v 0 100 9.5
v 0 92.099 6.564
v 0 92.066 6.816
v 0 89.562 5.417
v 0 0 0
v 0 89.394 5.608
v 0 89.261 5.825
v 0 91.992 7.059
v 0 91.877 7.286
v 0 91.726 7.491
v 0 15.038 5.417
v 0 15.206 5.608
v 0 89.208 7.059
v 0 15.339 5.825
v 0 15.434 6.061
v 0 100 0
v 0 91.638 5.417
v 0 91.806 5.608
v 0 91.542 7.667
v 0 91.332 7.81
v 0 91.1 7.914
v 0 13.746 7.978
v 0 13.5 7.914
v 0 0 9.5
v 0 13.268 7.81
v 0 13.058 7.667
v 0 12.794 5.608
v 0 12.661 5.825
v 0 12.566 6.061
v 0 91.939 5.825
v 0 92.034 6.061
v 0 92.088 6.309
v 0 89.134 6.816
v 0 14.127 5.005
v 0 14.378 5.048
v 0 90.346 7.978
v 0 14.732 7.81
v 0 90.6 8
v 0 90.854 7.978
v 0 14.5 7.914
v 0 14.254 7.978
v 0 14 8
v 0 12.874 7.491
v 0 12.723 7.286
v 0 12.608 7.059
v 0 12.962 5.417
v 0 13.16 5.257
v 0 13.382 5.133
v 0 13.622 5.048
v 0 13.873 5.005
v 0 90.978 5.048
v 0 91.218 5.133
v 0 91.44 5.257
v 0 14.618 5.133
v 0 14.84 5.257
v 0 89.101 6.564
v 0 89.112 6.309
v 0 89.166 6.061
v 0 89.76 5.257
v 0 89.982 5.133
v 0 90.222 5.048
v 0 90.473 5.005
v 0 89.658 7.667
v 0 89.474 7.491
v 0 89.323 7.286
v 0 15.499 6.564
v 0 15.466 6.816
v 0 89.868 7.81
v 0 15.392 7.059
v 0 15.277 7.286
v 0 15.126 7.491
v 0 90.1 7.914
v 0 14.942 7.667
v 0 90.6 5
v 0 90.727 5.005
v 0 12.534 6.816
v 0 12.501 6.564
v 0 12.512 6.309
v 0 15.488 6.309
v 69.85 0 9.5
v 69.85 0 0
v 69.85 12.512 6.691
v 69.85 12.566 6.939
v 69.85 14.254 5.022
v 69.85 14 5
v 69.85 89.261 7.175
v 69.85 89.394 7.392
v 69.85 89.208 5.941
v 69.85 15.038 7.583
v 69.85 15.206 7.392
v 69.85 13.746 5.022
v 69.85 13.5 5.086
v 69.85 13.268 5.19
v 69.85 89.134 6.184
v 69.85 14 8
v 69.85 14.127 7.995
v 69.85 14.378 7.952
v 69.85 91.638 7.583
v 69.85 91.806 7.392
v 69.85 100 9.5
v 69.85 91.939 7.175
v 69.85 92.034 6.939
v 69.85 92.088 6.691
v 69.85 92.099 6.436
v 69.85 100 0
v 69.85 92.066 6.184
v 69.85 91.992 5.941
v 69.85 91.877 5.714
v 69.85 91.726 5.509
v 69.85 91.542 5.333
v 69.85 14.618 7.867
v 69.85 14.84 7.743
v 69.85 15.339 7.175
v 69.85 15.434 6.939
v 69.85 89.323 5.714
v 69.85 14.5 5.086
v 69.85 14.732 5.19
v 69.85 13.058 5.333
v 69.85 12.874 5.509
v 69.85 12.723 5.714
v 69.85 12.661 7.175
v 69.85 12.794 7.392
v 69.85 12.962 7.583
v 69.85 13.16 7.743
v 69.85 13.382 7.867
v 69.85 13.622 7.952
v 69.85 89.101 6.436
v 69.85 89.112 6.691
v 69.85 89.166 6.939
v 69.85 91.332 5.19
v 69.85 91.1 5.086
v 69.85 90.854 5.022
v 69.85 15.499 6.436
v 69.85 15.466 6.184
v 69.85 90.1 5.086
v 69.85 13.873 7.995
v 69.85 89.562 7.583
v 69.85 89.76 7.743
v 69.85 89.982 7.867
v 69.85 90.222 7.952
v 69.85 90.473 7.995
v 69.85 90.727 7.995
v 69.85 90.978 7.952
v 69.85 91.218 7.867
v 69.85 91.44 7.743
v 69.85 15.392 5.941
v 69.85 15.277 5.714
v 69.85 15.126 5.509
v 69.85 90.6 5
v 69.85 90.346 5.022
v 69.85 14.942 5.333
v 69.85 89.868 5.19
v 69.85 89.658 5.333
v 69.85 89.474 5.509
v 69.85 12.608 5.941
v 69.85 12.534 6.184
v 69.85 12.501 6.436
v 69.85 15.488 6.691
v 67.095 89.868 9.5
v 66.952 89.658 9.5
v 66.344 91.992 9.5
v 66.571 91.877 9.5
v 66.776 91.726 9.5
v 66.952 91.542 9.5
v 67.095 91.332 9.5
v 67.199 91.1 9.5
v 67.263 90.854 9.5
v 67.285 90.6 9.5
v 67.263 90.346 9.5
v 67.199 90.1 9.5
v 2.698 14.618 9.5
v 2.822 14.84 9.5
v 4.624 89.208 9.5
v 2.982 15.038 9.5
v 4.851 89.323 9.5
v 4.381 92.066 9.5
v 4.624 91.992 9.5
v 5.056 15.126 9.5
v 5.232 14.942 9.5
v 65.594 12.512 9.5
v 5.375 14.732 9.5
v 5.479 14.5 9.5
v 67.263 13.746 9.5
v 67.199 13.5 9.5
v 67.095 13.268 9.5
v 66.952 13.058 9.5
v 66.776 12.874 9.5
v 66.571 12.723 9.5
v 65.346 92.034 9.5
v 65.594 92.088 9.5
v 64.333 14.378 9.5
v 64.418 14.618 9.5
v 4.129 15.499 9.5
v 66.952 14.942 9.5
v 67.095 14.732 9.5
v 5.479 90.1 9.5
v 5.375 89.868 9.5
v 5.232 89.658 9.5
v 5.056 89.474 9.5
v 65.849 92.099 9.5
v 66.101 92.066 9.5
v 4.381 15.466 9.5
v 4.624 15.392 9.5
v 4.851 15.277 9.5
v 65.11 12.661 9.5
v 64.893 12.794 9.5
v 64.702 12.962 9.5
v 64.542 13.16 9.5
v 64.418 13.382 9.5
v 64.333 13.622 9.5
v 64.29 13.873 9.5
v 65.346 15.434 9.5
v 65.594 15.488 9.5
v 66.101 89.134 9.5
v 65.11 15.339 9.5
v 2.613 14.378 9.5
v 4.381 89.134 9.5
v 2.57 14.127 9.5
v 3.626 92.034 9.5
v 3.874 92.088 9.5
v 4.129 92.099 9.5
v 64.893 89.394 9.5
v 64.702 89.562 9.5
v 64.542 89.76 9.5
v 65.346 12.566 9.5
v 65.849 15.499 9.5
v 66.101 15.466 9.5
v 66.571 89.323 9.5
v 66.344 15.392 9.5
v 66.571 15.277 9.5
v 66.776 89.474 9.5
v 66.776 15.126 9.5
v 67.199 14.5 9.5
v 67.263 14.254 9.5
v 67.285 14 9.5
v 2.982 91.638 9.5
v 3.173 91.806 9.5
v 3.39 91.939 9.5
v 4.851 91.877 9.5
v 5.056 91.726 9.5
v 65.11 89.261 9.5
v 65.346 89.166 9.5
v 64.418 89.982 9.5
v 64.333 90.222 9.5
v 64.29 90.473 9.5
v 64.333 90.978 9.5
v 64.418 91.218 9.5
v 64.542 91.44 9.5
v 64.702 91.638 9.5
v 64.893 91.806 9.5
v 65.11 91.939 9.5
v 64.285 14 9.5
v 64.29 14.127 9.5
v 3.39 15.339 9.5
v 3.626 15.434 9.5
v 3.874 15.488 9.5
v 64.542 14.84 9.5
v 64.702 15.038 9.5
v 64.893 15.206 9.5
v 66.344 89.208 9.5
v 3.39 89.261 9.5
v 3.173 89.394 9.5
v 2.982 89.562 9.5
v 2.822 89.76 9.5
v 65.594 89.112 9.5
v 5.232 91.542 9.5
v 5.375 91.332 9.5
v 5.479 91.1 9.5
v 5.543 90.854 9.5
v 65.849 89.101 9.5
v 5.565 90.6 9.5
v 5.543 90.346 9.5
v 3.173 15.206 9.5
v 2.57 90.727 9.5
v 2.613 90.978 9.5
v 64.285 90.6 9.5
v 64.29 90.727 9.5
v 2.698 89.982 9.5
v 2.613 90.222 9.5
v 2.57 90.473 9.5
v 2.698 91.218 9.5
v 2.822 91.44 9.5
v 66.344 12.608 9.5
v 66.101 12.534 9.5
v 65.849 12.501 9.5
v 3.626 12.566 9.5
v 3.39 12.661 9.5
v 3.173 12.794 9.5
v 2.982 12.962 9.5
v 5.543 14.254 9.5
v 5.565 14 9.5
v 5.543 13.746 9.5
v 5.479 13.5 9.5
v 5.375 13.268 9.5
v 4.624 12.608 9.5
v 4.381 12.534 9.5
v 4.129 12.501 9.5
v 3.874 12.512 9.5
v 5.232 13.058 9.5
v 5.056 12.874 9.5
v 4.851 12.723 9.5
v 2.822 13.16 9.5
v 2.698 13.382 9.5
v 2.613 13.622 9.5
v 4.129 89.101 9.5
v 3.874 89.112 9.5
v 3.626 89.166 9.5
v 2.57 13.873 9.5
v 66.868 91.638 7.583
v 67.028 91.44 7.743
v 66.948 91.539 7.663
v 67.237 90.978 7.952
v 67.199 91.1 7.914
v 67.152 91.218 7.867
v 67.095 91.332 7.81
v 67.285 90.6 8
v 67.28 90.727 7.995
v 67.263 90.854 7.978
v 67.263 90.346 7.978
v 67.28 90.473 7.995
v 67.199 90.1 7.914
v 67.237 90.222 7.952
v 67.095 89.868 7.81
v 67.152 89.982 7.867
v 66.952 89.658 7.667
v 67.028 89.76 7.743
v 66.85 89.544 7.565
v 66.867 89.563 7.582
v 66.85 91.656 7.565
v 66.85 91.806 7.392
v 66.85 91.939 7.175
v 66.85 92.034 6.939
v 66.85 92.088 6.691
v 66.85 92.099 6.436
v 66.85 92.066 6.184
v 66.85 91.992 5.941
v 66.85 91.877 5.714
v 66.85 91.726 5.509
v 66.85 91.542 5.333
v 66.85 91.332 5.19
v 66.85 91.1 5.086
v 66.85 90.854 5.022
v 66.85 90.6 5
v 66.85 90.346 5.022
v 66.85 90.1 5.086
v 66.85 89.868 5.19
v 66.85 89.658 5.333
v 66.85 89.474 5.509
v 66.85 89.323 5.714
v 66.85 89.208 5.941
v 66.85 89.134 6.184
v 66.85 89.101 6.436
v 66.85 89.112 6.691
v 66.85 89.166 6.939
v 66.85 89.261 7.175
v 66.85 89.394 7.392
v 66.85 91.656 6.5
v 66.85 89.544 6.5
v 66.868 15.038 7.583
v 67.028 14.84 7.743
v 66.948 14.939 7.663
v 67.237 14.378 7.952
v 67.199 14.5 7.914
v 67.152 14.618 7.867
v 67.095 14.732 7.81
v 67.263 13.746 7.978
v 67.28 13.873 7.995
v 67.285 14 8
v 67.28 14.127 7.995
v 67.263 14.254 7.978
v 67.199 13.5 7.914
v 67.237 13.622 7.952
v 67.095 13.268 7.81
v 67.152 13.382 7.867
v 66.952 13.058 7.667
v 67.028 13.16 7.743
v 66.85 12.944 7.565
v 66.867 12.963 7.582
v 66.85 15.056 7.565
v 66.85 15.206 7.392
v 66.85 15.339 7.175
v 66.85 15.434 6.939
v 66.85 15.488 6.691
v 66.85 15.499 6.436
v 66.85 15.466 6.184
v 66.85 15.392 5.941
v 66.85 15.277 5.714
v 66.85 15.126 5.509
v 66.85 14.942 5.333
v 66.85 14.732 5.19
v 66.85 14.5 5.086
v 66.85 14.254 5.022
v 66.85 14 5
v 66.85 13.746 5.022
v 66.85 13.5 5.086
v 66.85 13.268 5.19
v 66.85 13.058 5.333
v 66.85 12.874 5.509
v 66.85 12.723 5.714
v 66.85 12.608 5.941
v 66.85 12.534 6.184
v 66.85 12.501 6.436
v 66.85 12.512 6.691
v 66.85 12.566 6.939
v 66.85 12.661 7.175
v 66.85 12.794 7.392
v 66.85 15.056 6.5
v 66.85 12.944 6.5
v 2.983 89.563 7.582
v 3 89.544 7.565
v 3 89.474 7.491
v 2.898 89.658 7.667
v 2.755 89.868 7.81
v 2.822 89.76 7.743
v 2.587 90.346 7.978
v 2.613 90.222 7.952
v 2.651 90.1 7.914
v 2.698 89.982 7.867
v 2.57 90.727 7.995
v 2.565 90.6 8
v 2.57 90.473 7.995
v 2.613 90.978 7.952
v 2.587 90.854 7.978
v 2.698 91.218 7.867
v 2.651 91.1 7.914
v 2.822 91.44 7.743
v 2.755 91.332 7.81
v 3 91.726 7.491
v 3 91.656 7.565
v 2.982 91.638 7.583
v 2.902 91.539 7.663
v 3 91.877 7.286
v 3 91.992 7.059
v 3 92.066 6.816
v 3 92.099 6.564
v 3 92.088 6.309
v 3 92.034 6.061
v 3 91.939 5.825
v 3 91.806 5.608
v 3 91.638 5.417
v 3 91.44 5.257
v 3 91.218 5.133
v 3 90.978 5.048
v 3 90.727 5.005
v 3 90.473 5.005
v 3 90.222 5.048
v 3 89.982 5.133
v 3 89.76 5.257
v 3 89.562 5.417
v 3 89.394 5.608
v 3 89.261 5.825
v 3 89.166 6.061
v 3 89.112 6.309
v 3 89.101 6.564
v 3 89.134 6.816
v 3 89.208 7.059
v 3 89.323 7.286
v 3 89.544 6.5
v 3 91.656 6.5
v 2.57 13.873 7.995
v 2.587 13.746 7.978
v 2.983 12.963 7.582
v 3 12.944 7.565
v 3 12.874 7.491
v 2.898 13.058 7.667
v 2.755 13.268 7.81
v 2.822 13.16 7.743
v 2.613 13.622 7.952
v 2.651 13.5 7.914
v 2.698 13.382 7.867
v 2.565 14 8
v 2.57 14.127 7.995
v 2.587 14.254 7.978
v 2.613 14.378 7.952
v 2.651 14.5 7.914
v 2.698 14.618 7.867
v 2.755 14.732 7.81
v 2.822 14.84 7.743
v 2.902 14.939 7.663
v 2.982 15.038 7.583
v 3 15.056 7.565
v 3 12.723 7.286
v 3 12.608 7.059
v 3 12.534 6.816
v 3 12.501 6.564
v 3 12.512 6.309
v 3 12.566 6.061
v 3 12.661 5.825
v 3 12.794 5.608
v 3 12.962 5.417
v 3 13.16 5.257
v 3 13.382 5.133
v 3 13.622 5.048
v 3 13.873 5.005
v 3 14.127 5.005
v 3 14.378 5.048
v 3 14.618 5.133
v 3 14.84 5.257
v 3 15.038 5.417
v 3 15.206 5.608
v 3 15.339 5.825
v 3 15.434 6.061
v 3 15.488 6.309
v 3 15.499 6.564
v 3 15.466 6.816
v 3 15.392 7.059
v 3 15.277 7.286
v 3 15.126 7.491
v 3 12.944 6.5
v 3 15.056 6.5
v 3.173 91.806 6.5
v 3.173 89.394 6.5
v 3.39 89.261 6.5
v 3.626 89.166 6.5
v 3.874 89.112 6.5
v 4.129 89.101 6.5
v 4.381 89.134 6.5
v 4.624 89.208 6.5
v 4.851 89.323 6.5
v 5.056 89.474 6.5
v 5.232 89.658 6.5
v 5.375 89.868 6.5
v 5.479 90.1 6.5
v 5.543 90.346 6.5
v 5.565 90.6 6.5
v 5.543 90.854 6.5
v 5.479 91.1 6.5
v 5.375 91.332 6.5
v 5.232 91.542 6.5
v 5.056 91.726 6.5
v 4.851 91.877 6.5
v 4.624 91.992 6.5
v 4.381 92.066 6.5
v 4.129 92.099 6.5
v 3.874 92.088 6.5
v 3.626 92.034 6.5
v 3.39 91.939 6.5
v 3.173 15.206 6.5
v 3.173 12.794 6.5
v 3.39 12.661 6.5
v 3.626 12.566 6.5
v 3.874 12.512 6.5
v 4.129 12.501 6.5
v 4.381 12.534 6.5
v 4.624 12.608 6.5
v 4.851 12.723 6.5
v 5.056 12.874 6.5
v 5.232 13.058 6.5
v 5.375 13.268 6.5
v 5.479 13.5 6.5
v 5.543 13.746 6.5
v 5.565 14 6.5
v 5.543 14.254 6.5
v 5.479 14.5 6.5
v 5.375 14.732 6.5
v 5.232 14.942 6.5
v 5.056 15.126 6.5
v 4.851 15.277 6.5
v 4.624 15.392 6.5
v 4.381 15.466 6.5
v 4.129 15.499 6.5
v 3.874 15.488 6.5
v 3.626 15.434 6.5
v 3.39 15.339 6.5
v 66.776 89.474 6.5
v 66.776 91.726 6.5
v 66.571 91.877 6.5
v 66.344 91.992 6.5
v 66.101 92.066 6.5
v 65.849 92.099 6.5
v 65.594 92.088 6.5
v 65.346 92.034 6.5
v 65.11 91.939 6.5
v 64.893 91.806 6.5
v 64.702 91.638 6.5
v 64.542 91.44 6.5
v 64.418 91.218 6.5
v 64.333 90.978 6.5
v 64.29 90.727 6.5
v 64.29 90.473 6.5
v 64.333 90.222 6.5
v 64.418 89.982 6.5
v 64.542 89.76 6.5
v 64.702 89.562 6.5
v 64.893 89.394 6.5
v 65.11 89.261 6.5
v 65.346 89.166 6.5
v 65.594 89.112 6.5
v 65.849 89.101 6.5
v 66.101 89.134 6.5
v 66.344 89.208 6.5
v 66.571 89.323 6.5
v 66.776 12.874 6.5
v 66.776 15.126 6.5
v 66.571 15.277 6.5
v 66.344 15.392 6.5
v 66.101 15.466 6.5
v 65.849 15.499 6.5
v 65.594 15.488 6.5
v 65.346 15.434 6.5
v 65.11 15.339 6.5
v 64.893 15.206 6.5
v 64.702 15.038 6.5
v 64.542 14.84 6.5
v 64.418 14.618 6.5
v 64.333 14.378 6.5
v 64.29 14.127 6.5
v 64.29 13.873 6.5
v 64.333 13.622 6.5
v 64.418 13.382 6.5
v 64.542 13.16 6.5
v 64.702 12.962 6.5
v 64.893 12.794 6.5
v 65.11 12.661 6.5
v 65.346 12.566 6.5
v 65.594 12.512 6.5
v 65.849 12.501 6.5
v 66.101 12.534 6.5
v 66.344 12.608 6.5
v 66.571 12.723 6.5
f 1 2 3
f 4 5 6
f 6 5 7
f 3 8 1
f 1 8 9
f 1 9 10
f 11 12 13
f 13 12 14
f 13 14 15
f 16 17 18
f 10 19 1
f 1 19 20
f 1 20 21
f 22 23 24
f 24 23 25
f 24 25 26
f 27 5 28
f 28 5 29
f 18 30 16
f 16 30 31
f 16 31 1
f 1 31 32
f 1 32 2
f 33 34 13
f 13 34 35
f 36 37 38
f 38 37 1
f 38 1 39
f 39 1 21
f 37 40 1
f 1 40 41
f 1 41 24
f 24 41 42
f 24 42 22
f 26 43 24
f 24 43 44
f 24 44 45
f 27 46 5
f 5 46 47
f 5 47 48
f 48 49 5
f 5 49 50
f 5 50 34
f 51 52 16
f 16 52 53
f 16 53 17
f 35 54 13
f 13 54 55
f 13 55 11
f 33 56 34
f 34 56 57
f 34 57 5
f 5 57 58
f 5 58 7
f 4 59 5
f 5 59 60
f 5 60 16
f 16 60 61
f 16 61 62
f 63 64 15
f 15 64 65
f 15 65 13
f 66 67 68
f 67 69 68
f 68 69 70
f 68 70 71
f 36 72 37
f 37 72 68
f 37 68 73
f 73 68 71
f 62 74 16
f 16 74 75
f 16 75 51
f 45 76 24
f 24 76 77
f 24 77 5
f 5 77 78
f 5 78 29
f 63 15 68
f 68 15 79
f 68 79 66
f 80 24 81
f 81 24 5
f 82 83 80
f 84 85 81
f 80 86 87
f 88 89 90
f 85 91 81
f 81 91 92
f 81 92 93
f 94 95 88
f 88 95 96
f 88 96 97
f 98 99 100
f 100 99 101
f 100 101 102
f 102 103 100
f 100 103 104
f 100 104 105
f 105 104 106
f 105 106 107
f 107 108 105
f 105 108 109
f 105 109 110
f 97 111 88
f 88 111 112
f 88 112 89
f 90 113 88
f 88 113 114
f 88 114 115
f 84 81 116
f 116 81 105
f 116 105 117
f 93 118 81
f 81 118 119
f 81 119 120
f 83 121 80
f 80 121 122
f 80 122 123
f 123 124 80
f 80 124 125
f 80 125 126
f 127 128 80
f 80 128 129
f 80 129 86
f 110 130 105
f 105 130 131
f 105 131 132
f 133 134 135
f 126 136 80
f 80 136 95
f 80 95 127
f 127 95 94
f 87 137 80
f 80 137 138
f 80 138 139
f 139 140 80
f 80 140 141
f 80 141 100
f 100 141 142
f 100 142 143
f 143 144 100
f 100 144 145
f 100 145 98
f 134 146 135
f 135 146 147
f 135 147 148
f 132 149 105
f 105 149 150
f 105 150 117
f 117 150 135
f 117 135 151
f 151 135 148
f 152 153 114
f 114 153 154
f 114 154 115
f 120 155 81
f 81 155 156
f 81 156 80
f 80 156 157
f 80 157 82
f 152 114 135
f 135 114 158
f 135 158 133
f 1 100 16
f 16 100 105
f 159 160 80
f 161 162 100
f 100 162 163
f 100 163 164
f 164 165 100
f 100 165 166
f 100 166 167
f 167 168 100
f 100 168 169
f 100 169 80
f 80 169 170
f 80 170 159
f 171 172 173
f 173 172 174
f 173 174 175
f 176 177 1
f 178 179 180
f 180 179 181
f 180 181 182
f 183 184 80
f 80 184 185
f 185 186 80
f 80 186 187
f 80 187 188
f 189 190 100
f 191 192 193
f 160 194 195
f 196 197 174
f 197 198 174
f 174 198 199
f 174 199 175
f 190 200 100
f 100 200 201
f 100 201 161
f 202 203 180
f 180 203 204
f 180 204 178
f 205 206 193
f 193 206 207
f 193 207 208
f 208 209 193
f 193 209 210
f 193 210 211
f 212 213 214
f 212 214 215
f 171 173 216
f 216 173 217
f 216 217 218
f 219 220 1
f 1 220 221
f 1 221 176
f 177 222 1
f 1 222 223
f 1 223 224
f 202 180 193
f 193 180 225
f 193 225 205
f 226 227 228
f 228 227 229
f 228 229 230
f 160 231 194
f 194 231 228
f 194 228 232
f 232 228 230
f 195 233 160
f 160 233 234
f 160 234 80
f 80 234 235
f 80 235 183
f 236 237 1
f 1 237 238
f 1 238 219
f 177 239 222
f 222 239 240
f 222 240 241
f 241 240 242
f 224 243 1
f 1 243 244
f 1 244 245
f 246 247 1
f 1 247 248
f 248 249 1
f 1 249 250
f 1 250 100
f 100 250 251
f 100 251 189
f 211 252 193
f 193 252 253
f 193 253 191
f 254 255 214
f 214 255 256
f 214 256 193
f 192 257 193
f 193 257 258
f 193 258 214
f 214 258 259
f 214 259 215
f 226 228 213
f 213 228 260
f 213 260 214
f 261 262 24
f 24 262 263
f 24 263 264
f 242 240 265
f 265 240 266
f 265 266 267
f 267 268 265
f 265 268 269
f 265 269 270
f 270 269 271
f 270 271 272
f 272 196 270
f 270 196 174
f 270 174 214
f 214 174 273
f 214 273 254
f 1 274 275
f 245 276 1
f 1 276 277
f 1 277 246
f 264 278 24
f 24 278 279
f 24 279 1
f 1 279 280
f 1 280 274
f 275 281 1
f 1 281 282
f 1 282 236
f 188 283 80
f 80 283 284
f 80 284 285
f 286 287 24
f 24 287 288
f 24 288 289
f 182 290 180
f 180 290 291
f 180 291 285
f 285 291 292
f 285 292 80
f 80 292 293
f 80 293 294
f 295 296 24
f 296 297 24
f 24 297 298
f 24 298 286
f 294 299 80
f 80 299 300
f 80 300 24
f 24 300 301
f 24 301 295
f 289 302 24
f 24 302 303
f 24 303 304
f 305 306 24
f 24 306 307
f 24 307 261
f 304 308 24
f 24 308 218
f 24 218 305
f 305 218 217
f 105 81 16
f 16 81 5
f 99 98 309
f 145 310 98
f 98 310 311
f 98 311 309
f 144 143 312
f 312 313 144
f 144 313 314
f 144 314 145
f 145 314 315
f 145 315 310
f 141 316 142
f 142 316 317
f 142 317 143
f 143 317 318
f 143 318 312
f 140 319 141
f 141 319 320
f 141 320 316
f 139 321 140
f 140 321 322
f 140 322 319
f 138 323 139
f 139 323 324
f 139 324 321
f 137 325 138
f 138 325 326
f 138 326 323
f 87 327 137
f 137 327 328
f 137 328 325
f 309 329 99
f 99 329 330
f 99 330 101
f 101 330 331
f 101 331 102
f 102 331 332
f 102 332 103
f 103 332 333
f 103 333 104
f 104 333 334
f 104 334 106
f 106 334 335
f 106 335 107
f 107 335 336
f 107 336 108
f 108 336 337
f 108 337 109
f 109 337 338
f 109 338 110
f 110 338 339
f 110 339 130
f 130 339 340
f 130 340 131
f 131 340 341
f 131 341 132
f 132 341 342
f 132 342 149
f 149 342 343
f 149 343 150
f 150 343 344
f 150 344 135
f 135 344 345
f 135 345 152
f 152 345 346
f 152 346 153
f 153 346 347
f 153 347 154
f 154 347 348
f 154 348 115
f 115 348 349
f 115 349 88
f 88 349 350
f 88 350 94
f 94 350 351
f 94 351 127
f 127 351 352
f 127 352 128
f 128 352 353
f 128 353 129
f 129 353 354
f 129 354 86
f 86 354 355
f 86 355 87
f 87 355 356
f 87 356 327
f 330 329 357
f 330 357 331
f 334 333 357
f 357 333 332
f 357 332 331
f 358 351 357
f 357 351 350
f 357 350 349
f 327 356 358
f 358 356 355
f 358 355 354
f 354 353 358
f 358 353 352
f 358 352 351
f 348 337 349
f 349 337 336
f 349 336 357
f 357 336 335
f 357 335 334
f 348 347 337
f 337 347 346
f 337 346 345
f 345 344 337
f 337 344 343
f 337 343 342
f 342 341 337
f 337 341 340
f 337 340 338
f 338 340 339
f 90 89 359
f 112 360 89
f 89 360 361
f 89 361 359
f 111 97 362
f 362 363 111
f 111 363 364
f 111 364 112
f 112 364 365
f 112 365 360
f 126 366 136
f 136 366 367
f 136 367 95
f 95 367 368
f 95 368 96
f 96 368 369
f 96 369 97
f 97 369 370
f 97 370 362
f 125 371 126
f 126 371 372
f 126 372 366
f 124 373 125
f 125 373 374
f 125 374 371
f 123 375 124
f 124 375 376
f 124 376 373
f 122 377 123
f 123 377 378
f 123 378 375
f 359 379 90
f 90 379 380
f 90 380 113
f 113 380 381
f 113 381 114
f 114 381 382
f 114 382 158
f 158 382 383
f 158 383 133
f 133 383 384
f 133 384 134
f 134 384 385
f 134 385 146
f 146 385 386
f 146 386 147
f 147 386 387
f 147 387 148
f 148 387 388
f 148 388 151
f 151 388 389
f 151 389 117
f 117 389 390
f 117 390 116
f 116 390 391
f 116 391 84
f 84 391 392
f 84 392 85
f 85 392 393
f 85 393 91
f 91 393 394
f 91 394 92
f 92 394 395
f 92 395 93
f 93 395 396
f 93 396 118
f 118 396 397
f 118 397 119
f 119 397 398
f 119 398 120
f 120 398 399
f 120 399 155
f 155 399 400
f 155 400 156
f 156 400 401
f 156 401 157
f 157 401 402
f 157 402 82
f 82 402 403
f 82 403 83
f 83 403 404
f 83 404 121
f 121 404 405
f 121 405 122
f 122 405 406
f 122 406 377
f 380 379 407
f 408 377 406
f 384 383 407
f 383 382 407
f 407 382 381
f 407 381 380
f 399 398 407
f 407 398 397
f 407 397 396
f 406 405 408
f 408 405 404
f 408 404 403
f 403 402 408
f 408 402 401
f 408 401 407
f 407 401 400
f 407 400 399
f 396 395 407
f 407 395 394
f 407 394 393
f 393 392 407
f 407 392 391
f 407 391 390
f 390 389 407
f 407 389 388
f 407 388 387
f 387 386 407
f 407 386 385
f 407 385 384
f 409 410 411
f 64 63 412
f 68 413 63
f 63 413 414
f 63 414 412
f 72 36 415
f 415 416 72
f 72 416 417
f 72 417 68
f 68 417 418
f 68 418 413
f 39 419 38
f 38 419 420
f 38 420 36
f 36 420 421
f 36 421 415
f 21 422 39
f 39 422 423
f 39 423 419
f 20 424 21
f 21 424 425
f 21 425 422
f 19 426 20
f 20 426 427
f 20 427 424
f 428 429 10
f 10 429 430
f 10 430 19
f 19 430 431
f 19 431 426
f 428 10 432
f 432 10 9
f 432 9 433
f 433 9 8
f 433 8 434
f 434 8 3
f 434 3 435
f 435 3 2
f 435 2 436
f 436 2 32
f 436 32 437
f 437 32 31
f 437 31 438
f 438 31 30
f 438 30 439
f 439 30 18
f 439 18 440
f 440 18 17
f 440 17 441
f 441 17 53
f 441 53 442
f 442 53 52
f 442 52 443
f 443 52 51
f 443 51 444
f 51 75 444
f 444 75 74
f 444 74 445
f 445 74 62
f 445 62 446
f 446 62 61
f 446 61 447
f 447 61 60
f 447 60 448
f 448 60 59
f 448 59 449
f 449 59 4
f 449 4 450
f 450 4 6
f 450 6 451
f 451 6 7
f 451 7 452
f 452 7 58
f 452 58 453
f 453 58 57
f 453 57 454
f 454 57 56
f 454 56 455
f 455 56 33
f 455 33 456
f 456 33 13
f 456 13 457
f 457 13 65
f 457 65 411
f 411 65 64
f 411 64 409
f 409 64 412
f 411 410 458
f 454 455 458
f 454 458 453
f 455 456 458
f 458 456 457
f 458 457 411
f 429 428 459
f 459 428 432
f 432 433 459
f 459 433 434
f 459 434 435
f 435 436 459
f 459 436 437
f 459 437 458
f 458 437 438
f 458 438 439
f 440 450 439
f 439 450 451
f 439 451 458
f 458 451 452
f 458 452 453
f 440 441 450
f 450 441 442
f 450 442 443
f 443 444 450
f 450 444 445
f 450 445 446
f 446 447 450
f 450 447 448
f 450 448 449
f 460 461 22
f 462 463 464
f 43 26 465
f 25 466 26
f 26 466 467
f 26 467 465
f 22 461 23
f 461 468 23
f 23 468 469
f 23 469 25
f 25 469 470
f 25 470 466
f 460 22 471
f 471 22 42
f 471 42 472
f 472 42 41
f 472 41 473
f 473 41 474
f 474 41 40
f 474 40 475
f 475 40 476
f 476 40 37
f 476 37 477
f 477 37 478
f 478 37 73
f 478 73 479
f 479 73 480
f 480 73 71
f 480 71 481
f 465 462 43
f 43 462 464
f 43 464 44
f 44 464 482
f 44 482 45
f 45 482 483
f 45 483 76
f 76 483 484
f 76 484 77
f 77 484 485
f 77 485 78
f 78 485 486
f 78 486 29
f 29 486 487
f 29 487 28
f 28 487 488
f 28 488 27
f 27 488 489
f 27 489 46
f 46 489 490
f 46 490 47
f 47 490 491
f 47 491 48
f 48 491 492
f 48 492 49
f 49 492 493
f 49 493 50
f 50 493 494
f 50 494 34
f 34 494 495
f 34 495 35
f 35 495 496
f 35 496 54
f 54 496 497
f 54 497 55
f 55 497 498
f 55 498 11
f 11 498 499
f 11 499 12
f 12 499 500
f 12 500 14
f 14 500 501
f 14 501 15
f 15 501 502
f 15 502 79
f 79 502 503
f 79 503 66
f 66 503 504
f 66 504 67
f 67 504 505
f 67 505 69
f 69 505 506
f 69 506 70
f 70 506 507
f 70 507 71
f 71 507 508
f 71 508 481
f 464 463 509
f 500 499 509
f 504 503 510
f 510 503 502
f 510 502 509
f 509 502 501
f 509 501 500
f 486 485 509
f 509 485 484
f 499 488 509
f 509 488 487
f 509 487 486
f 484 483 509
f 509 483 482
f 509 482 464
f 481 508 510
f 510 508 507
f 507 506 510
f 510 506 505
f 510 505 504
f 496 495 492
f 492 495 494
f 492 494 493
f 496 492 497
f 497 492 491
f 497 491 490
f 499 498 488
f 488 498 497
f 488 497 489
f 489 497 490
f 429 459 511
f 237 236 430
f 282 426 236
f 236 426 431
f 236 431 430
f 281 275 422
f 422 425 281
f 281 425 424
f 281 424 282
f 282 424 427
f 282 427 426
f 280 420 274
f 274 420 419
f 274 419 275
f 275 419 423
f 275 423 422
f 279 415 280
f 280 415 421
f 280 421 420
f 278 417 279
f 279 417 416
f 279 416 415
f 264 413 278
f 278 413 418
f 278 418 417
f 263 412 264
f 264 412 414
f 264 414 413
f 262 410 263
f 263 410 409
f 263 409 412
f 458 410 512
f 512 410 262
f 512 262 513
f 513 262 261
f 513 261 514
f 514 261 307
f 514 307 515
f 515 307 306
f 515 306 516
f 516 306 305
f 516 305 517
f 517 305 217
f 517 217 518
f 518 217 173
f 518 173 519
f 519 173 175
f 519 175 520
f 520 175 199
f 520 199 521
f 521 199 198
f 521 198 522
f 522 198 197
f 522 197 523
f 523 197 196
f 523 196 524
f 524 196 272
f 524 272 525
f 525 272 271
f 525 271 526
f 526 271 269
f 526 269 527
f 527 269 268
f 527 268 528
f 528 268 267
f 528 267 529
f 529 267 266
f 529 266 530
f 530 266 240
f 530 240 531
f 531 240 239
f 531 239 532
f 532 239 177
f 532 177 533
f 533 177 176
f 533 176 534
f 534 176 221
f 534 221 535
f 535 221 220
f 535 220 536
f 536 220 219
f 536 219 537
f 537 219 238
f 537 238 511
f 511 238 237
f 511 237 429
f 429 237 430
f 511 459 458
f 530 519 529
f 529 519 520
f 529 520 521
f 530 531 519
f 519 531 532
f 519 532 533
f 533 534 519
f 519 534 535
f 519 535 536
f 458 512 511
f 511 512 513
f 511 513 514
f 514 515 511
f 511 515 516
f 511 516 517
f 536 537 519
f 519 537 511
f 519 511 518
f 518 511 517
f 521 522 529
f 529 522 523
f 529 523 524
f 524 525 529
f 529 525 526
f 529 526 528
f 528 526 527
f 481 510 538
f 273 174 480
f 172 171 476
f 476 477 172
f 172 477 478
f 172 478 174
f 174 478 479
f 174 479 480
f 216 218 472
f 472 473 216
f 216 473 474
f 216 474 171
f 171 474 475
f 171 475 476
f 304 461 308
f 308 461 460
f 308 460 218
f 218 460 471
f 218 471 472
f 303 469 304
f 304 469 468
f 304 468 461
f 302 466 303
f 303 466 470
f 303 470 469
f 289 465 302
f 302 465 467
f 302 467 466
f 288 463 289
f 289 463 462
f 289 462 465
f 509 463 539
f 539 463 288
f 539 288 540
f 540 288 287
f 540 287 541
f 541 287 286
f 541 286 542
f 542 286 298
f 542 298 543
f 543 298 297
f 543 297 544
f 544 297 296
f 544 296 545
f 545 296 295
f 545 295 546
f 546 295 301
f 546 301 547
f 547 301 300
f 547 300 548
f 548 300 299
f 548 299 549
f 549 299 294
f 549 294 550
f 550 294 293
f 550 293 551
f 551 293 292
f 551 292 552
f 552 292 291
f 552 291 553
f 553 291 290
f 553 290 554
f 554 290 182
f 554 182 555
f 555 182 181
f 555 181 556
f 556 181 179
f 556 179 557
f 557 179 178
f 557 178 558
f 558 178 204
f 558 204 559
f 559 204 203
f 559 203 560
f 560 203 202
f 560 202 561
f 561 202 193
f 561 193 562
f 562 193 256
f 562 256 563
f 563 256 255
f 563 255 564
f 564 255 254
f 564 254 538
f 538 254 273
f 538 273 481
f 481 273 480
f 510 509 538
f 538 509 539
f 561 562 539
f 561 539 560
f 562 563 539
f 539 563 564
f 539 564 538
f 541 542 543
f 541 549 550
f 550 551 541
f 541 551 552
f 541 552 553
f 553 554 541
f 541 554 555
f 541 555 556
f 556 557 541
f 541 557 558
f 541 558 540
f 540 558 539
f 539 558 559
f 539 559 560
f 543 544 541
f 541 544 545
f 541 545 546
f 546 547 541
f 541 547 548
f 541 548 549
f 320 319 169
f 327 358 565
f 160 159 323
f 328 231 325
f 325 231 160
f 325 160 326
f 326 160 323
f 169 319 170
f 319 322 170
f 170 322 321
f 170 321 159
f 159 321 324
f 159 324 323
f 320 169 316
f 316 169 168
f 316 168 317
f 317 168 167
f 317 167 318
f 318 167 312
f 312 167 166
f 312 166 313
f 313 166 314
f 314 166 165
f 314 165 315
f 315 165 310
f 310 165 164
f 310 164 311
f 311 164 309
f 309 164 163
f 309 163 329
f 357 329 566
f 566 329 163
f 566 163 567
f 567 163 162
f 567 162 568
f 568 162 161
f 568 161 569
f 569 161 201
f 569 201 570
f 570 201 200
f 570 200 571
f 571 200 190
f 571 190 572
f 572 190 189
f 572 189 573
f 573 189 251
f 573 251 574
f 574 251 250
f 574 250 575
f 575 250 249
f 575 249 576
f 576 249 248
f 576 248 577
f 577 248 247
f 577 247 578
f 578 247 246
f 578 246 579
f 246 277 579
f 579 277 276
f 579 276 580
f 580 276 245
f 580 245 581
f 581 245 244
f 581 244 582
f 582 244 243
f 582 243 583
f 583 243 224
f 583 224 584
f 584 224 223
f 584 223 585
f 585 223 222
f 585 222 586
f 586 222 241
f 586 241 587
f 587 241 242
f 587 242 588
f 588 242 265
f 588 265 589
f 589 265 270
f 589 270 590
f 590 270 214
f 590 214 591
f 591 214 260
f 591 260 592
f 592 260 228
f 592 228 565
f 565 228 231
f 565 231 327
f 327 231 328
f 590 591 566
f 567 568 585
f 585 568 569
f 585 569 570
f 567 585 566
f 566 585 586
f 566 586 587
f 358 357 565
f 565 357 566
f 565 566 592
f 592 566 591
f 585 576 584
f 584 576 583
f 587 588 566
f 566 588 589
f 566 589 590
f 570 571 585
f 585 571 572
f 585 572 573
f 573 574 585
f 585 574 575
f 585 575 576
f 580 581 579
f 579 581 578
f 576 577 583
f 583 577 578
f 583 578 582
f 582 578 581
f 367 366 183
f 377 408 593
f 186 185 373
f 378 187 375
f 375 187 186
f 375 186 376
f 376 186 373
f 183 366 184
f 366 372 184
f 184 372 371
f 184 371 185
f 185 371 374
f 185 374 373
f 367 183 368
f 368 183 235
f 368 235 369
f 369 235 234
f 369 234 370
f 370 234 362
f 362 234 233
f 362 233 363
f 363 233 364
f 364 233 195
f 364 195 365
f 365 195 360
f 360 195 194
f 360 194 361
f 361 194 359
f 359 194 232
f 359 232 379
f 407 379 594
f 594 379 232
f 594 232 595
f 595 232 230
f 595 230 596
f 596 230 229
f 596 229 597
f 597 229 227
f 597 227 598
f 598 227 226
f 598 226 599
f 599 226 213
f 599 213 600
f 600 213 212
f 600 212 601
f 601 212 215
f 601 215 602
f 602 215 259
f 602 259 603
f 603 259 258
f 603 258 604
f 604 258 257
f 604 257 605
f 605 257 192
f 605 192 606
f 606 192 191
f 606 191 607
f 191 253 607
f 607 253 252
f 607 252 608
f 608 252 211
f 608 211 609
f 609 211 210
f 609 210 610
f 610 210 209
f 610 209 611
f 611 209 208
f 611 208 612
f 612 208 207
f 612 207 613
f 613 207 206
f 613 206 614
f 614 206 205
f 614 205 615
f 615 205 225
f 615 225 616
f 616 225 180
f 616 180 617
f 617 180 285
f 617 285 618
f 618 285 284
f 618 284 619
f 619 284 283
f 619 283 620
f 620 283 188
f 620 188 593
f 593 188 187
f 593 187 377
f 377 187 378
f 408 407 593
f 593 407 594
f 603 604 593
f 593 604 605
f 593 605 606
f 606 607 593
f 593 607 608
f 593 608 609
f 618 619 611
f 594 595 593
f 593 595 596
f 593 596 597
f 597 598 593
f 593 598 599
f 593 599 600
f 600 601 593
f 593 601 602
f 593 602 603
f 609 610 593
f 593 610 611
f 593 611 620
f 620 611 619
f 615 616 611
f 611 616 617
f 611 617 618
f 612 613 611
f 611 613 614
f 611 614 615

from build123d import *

# Parameters (mm, degrees)
SKETCH_1_W          = 69.85
SKETCH_1_H          = 100
EXTRUDE_1_DEPTH     = 9.5
SKETCH_2_R          = 1.5
CUT_EXTRUDE_1_DEPTH = 3
SKETCH_4_R          = 1.5
CUT_EXTRUDE_3_DEPTH = 3


with BuildPart() as part:
    # 스케치1 → 보스-돌출1 (new body)
    with BuildSketch(Plane.XY):
        with Locations((34.925, 50)):
            Rectangle(SKETCH_1_W, SKETCH_1_H)
    extrude(amount=EXTRUDE_1_DEPTH)

    # 스케치2 → 컷-돌출1 (cut)
    with BuildSketch(Plane(origin=(69.85, 0, 0), x_dir=(0, 0, -1), z_dir=(1, 0, 0))):
        with Locations((-6.5, 90.6)):
            Circle(SKETCH_2_R)
        with Locations(Location((-6.5, 14, 0), (0, 0, 180))):
            Circle(SKETCH_2_R)
    cut_extrude_1 = extrude(amount=-CUT_EXTRUDE_1_DEPTH, mode=Mode.SUBTRACT)

    # 대칭 복사1: 컷-돌출1 across plane
    add(cut_extrude_1.mirror(Plane(origin=(34.925, 0, 0), x_dir=(0, 0, 1), z_dir=(1, 0, 0))), mode=Mode.SUBTRACT)

    # 스케치4 → 컷-돌출3 (cut)
    with BuildSketch(Plane.XY.offset(9.5)):
        with Locations((4.065, 90.6)):
            Circle(SKETCH_4_R)
        with Locations(Location((65.785, 90.6, 0), (0, 0, 315.234915329))):
            Circle(SKETCH_4_R)
        with Locations((4.065, 14)):
            Circle(SKETCH_4_R)
        with Locations(Location((65.785, 14, 0), (0, 0, 44.765084671))):
            Circle(SKETCH_4_R)
    extrude(amount=-CUT_EXTRUDE_3_DEPTH, mode=Mode.SUBTRACT)


solid = part.part
